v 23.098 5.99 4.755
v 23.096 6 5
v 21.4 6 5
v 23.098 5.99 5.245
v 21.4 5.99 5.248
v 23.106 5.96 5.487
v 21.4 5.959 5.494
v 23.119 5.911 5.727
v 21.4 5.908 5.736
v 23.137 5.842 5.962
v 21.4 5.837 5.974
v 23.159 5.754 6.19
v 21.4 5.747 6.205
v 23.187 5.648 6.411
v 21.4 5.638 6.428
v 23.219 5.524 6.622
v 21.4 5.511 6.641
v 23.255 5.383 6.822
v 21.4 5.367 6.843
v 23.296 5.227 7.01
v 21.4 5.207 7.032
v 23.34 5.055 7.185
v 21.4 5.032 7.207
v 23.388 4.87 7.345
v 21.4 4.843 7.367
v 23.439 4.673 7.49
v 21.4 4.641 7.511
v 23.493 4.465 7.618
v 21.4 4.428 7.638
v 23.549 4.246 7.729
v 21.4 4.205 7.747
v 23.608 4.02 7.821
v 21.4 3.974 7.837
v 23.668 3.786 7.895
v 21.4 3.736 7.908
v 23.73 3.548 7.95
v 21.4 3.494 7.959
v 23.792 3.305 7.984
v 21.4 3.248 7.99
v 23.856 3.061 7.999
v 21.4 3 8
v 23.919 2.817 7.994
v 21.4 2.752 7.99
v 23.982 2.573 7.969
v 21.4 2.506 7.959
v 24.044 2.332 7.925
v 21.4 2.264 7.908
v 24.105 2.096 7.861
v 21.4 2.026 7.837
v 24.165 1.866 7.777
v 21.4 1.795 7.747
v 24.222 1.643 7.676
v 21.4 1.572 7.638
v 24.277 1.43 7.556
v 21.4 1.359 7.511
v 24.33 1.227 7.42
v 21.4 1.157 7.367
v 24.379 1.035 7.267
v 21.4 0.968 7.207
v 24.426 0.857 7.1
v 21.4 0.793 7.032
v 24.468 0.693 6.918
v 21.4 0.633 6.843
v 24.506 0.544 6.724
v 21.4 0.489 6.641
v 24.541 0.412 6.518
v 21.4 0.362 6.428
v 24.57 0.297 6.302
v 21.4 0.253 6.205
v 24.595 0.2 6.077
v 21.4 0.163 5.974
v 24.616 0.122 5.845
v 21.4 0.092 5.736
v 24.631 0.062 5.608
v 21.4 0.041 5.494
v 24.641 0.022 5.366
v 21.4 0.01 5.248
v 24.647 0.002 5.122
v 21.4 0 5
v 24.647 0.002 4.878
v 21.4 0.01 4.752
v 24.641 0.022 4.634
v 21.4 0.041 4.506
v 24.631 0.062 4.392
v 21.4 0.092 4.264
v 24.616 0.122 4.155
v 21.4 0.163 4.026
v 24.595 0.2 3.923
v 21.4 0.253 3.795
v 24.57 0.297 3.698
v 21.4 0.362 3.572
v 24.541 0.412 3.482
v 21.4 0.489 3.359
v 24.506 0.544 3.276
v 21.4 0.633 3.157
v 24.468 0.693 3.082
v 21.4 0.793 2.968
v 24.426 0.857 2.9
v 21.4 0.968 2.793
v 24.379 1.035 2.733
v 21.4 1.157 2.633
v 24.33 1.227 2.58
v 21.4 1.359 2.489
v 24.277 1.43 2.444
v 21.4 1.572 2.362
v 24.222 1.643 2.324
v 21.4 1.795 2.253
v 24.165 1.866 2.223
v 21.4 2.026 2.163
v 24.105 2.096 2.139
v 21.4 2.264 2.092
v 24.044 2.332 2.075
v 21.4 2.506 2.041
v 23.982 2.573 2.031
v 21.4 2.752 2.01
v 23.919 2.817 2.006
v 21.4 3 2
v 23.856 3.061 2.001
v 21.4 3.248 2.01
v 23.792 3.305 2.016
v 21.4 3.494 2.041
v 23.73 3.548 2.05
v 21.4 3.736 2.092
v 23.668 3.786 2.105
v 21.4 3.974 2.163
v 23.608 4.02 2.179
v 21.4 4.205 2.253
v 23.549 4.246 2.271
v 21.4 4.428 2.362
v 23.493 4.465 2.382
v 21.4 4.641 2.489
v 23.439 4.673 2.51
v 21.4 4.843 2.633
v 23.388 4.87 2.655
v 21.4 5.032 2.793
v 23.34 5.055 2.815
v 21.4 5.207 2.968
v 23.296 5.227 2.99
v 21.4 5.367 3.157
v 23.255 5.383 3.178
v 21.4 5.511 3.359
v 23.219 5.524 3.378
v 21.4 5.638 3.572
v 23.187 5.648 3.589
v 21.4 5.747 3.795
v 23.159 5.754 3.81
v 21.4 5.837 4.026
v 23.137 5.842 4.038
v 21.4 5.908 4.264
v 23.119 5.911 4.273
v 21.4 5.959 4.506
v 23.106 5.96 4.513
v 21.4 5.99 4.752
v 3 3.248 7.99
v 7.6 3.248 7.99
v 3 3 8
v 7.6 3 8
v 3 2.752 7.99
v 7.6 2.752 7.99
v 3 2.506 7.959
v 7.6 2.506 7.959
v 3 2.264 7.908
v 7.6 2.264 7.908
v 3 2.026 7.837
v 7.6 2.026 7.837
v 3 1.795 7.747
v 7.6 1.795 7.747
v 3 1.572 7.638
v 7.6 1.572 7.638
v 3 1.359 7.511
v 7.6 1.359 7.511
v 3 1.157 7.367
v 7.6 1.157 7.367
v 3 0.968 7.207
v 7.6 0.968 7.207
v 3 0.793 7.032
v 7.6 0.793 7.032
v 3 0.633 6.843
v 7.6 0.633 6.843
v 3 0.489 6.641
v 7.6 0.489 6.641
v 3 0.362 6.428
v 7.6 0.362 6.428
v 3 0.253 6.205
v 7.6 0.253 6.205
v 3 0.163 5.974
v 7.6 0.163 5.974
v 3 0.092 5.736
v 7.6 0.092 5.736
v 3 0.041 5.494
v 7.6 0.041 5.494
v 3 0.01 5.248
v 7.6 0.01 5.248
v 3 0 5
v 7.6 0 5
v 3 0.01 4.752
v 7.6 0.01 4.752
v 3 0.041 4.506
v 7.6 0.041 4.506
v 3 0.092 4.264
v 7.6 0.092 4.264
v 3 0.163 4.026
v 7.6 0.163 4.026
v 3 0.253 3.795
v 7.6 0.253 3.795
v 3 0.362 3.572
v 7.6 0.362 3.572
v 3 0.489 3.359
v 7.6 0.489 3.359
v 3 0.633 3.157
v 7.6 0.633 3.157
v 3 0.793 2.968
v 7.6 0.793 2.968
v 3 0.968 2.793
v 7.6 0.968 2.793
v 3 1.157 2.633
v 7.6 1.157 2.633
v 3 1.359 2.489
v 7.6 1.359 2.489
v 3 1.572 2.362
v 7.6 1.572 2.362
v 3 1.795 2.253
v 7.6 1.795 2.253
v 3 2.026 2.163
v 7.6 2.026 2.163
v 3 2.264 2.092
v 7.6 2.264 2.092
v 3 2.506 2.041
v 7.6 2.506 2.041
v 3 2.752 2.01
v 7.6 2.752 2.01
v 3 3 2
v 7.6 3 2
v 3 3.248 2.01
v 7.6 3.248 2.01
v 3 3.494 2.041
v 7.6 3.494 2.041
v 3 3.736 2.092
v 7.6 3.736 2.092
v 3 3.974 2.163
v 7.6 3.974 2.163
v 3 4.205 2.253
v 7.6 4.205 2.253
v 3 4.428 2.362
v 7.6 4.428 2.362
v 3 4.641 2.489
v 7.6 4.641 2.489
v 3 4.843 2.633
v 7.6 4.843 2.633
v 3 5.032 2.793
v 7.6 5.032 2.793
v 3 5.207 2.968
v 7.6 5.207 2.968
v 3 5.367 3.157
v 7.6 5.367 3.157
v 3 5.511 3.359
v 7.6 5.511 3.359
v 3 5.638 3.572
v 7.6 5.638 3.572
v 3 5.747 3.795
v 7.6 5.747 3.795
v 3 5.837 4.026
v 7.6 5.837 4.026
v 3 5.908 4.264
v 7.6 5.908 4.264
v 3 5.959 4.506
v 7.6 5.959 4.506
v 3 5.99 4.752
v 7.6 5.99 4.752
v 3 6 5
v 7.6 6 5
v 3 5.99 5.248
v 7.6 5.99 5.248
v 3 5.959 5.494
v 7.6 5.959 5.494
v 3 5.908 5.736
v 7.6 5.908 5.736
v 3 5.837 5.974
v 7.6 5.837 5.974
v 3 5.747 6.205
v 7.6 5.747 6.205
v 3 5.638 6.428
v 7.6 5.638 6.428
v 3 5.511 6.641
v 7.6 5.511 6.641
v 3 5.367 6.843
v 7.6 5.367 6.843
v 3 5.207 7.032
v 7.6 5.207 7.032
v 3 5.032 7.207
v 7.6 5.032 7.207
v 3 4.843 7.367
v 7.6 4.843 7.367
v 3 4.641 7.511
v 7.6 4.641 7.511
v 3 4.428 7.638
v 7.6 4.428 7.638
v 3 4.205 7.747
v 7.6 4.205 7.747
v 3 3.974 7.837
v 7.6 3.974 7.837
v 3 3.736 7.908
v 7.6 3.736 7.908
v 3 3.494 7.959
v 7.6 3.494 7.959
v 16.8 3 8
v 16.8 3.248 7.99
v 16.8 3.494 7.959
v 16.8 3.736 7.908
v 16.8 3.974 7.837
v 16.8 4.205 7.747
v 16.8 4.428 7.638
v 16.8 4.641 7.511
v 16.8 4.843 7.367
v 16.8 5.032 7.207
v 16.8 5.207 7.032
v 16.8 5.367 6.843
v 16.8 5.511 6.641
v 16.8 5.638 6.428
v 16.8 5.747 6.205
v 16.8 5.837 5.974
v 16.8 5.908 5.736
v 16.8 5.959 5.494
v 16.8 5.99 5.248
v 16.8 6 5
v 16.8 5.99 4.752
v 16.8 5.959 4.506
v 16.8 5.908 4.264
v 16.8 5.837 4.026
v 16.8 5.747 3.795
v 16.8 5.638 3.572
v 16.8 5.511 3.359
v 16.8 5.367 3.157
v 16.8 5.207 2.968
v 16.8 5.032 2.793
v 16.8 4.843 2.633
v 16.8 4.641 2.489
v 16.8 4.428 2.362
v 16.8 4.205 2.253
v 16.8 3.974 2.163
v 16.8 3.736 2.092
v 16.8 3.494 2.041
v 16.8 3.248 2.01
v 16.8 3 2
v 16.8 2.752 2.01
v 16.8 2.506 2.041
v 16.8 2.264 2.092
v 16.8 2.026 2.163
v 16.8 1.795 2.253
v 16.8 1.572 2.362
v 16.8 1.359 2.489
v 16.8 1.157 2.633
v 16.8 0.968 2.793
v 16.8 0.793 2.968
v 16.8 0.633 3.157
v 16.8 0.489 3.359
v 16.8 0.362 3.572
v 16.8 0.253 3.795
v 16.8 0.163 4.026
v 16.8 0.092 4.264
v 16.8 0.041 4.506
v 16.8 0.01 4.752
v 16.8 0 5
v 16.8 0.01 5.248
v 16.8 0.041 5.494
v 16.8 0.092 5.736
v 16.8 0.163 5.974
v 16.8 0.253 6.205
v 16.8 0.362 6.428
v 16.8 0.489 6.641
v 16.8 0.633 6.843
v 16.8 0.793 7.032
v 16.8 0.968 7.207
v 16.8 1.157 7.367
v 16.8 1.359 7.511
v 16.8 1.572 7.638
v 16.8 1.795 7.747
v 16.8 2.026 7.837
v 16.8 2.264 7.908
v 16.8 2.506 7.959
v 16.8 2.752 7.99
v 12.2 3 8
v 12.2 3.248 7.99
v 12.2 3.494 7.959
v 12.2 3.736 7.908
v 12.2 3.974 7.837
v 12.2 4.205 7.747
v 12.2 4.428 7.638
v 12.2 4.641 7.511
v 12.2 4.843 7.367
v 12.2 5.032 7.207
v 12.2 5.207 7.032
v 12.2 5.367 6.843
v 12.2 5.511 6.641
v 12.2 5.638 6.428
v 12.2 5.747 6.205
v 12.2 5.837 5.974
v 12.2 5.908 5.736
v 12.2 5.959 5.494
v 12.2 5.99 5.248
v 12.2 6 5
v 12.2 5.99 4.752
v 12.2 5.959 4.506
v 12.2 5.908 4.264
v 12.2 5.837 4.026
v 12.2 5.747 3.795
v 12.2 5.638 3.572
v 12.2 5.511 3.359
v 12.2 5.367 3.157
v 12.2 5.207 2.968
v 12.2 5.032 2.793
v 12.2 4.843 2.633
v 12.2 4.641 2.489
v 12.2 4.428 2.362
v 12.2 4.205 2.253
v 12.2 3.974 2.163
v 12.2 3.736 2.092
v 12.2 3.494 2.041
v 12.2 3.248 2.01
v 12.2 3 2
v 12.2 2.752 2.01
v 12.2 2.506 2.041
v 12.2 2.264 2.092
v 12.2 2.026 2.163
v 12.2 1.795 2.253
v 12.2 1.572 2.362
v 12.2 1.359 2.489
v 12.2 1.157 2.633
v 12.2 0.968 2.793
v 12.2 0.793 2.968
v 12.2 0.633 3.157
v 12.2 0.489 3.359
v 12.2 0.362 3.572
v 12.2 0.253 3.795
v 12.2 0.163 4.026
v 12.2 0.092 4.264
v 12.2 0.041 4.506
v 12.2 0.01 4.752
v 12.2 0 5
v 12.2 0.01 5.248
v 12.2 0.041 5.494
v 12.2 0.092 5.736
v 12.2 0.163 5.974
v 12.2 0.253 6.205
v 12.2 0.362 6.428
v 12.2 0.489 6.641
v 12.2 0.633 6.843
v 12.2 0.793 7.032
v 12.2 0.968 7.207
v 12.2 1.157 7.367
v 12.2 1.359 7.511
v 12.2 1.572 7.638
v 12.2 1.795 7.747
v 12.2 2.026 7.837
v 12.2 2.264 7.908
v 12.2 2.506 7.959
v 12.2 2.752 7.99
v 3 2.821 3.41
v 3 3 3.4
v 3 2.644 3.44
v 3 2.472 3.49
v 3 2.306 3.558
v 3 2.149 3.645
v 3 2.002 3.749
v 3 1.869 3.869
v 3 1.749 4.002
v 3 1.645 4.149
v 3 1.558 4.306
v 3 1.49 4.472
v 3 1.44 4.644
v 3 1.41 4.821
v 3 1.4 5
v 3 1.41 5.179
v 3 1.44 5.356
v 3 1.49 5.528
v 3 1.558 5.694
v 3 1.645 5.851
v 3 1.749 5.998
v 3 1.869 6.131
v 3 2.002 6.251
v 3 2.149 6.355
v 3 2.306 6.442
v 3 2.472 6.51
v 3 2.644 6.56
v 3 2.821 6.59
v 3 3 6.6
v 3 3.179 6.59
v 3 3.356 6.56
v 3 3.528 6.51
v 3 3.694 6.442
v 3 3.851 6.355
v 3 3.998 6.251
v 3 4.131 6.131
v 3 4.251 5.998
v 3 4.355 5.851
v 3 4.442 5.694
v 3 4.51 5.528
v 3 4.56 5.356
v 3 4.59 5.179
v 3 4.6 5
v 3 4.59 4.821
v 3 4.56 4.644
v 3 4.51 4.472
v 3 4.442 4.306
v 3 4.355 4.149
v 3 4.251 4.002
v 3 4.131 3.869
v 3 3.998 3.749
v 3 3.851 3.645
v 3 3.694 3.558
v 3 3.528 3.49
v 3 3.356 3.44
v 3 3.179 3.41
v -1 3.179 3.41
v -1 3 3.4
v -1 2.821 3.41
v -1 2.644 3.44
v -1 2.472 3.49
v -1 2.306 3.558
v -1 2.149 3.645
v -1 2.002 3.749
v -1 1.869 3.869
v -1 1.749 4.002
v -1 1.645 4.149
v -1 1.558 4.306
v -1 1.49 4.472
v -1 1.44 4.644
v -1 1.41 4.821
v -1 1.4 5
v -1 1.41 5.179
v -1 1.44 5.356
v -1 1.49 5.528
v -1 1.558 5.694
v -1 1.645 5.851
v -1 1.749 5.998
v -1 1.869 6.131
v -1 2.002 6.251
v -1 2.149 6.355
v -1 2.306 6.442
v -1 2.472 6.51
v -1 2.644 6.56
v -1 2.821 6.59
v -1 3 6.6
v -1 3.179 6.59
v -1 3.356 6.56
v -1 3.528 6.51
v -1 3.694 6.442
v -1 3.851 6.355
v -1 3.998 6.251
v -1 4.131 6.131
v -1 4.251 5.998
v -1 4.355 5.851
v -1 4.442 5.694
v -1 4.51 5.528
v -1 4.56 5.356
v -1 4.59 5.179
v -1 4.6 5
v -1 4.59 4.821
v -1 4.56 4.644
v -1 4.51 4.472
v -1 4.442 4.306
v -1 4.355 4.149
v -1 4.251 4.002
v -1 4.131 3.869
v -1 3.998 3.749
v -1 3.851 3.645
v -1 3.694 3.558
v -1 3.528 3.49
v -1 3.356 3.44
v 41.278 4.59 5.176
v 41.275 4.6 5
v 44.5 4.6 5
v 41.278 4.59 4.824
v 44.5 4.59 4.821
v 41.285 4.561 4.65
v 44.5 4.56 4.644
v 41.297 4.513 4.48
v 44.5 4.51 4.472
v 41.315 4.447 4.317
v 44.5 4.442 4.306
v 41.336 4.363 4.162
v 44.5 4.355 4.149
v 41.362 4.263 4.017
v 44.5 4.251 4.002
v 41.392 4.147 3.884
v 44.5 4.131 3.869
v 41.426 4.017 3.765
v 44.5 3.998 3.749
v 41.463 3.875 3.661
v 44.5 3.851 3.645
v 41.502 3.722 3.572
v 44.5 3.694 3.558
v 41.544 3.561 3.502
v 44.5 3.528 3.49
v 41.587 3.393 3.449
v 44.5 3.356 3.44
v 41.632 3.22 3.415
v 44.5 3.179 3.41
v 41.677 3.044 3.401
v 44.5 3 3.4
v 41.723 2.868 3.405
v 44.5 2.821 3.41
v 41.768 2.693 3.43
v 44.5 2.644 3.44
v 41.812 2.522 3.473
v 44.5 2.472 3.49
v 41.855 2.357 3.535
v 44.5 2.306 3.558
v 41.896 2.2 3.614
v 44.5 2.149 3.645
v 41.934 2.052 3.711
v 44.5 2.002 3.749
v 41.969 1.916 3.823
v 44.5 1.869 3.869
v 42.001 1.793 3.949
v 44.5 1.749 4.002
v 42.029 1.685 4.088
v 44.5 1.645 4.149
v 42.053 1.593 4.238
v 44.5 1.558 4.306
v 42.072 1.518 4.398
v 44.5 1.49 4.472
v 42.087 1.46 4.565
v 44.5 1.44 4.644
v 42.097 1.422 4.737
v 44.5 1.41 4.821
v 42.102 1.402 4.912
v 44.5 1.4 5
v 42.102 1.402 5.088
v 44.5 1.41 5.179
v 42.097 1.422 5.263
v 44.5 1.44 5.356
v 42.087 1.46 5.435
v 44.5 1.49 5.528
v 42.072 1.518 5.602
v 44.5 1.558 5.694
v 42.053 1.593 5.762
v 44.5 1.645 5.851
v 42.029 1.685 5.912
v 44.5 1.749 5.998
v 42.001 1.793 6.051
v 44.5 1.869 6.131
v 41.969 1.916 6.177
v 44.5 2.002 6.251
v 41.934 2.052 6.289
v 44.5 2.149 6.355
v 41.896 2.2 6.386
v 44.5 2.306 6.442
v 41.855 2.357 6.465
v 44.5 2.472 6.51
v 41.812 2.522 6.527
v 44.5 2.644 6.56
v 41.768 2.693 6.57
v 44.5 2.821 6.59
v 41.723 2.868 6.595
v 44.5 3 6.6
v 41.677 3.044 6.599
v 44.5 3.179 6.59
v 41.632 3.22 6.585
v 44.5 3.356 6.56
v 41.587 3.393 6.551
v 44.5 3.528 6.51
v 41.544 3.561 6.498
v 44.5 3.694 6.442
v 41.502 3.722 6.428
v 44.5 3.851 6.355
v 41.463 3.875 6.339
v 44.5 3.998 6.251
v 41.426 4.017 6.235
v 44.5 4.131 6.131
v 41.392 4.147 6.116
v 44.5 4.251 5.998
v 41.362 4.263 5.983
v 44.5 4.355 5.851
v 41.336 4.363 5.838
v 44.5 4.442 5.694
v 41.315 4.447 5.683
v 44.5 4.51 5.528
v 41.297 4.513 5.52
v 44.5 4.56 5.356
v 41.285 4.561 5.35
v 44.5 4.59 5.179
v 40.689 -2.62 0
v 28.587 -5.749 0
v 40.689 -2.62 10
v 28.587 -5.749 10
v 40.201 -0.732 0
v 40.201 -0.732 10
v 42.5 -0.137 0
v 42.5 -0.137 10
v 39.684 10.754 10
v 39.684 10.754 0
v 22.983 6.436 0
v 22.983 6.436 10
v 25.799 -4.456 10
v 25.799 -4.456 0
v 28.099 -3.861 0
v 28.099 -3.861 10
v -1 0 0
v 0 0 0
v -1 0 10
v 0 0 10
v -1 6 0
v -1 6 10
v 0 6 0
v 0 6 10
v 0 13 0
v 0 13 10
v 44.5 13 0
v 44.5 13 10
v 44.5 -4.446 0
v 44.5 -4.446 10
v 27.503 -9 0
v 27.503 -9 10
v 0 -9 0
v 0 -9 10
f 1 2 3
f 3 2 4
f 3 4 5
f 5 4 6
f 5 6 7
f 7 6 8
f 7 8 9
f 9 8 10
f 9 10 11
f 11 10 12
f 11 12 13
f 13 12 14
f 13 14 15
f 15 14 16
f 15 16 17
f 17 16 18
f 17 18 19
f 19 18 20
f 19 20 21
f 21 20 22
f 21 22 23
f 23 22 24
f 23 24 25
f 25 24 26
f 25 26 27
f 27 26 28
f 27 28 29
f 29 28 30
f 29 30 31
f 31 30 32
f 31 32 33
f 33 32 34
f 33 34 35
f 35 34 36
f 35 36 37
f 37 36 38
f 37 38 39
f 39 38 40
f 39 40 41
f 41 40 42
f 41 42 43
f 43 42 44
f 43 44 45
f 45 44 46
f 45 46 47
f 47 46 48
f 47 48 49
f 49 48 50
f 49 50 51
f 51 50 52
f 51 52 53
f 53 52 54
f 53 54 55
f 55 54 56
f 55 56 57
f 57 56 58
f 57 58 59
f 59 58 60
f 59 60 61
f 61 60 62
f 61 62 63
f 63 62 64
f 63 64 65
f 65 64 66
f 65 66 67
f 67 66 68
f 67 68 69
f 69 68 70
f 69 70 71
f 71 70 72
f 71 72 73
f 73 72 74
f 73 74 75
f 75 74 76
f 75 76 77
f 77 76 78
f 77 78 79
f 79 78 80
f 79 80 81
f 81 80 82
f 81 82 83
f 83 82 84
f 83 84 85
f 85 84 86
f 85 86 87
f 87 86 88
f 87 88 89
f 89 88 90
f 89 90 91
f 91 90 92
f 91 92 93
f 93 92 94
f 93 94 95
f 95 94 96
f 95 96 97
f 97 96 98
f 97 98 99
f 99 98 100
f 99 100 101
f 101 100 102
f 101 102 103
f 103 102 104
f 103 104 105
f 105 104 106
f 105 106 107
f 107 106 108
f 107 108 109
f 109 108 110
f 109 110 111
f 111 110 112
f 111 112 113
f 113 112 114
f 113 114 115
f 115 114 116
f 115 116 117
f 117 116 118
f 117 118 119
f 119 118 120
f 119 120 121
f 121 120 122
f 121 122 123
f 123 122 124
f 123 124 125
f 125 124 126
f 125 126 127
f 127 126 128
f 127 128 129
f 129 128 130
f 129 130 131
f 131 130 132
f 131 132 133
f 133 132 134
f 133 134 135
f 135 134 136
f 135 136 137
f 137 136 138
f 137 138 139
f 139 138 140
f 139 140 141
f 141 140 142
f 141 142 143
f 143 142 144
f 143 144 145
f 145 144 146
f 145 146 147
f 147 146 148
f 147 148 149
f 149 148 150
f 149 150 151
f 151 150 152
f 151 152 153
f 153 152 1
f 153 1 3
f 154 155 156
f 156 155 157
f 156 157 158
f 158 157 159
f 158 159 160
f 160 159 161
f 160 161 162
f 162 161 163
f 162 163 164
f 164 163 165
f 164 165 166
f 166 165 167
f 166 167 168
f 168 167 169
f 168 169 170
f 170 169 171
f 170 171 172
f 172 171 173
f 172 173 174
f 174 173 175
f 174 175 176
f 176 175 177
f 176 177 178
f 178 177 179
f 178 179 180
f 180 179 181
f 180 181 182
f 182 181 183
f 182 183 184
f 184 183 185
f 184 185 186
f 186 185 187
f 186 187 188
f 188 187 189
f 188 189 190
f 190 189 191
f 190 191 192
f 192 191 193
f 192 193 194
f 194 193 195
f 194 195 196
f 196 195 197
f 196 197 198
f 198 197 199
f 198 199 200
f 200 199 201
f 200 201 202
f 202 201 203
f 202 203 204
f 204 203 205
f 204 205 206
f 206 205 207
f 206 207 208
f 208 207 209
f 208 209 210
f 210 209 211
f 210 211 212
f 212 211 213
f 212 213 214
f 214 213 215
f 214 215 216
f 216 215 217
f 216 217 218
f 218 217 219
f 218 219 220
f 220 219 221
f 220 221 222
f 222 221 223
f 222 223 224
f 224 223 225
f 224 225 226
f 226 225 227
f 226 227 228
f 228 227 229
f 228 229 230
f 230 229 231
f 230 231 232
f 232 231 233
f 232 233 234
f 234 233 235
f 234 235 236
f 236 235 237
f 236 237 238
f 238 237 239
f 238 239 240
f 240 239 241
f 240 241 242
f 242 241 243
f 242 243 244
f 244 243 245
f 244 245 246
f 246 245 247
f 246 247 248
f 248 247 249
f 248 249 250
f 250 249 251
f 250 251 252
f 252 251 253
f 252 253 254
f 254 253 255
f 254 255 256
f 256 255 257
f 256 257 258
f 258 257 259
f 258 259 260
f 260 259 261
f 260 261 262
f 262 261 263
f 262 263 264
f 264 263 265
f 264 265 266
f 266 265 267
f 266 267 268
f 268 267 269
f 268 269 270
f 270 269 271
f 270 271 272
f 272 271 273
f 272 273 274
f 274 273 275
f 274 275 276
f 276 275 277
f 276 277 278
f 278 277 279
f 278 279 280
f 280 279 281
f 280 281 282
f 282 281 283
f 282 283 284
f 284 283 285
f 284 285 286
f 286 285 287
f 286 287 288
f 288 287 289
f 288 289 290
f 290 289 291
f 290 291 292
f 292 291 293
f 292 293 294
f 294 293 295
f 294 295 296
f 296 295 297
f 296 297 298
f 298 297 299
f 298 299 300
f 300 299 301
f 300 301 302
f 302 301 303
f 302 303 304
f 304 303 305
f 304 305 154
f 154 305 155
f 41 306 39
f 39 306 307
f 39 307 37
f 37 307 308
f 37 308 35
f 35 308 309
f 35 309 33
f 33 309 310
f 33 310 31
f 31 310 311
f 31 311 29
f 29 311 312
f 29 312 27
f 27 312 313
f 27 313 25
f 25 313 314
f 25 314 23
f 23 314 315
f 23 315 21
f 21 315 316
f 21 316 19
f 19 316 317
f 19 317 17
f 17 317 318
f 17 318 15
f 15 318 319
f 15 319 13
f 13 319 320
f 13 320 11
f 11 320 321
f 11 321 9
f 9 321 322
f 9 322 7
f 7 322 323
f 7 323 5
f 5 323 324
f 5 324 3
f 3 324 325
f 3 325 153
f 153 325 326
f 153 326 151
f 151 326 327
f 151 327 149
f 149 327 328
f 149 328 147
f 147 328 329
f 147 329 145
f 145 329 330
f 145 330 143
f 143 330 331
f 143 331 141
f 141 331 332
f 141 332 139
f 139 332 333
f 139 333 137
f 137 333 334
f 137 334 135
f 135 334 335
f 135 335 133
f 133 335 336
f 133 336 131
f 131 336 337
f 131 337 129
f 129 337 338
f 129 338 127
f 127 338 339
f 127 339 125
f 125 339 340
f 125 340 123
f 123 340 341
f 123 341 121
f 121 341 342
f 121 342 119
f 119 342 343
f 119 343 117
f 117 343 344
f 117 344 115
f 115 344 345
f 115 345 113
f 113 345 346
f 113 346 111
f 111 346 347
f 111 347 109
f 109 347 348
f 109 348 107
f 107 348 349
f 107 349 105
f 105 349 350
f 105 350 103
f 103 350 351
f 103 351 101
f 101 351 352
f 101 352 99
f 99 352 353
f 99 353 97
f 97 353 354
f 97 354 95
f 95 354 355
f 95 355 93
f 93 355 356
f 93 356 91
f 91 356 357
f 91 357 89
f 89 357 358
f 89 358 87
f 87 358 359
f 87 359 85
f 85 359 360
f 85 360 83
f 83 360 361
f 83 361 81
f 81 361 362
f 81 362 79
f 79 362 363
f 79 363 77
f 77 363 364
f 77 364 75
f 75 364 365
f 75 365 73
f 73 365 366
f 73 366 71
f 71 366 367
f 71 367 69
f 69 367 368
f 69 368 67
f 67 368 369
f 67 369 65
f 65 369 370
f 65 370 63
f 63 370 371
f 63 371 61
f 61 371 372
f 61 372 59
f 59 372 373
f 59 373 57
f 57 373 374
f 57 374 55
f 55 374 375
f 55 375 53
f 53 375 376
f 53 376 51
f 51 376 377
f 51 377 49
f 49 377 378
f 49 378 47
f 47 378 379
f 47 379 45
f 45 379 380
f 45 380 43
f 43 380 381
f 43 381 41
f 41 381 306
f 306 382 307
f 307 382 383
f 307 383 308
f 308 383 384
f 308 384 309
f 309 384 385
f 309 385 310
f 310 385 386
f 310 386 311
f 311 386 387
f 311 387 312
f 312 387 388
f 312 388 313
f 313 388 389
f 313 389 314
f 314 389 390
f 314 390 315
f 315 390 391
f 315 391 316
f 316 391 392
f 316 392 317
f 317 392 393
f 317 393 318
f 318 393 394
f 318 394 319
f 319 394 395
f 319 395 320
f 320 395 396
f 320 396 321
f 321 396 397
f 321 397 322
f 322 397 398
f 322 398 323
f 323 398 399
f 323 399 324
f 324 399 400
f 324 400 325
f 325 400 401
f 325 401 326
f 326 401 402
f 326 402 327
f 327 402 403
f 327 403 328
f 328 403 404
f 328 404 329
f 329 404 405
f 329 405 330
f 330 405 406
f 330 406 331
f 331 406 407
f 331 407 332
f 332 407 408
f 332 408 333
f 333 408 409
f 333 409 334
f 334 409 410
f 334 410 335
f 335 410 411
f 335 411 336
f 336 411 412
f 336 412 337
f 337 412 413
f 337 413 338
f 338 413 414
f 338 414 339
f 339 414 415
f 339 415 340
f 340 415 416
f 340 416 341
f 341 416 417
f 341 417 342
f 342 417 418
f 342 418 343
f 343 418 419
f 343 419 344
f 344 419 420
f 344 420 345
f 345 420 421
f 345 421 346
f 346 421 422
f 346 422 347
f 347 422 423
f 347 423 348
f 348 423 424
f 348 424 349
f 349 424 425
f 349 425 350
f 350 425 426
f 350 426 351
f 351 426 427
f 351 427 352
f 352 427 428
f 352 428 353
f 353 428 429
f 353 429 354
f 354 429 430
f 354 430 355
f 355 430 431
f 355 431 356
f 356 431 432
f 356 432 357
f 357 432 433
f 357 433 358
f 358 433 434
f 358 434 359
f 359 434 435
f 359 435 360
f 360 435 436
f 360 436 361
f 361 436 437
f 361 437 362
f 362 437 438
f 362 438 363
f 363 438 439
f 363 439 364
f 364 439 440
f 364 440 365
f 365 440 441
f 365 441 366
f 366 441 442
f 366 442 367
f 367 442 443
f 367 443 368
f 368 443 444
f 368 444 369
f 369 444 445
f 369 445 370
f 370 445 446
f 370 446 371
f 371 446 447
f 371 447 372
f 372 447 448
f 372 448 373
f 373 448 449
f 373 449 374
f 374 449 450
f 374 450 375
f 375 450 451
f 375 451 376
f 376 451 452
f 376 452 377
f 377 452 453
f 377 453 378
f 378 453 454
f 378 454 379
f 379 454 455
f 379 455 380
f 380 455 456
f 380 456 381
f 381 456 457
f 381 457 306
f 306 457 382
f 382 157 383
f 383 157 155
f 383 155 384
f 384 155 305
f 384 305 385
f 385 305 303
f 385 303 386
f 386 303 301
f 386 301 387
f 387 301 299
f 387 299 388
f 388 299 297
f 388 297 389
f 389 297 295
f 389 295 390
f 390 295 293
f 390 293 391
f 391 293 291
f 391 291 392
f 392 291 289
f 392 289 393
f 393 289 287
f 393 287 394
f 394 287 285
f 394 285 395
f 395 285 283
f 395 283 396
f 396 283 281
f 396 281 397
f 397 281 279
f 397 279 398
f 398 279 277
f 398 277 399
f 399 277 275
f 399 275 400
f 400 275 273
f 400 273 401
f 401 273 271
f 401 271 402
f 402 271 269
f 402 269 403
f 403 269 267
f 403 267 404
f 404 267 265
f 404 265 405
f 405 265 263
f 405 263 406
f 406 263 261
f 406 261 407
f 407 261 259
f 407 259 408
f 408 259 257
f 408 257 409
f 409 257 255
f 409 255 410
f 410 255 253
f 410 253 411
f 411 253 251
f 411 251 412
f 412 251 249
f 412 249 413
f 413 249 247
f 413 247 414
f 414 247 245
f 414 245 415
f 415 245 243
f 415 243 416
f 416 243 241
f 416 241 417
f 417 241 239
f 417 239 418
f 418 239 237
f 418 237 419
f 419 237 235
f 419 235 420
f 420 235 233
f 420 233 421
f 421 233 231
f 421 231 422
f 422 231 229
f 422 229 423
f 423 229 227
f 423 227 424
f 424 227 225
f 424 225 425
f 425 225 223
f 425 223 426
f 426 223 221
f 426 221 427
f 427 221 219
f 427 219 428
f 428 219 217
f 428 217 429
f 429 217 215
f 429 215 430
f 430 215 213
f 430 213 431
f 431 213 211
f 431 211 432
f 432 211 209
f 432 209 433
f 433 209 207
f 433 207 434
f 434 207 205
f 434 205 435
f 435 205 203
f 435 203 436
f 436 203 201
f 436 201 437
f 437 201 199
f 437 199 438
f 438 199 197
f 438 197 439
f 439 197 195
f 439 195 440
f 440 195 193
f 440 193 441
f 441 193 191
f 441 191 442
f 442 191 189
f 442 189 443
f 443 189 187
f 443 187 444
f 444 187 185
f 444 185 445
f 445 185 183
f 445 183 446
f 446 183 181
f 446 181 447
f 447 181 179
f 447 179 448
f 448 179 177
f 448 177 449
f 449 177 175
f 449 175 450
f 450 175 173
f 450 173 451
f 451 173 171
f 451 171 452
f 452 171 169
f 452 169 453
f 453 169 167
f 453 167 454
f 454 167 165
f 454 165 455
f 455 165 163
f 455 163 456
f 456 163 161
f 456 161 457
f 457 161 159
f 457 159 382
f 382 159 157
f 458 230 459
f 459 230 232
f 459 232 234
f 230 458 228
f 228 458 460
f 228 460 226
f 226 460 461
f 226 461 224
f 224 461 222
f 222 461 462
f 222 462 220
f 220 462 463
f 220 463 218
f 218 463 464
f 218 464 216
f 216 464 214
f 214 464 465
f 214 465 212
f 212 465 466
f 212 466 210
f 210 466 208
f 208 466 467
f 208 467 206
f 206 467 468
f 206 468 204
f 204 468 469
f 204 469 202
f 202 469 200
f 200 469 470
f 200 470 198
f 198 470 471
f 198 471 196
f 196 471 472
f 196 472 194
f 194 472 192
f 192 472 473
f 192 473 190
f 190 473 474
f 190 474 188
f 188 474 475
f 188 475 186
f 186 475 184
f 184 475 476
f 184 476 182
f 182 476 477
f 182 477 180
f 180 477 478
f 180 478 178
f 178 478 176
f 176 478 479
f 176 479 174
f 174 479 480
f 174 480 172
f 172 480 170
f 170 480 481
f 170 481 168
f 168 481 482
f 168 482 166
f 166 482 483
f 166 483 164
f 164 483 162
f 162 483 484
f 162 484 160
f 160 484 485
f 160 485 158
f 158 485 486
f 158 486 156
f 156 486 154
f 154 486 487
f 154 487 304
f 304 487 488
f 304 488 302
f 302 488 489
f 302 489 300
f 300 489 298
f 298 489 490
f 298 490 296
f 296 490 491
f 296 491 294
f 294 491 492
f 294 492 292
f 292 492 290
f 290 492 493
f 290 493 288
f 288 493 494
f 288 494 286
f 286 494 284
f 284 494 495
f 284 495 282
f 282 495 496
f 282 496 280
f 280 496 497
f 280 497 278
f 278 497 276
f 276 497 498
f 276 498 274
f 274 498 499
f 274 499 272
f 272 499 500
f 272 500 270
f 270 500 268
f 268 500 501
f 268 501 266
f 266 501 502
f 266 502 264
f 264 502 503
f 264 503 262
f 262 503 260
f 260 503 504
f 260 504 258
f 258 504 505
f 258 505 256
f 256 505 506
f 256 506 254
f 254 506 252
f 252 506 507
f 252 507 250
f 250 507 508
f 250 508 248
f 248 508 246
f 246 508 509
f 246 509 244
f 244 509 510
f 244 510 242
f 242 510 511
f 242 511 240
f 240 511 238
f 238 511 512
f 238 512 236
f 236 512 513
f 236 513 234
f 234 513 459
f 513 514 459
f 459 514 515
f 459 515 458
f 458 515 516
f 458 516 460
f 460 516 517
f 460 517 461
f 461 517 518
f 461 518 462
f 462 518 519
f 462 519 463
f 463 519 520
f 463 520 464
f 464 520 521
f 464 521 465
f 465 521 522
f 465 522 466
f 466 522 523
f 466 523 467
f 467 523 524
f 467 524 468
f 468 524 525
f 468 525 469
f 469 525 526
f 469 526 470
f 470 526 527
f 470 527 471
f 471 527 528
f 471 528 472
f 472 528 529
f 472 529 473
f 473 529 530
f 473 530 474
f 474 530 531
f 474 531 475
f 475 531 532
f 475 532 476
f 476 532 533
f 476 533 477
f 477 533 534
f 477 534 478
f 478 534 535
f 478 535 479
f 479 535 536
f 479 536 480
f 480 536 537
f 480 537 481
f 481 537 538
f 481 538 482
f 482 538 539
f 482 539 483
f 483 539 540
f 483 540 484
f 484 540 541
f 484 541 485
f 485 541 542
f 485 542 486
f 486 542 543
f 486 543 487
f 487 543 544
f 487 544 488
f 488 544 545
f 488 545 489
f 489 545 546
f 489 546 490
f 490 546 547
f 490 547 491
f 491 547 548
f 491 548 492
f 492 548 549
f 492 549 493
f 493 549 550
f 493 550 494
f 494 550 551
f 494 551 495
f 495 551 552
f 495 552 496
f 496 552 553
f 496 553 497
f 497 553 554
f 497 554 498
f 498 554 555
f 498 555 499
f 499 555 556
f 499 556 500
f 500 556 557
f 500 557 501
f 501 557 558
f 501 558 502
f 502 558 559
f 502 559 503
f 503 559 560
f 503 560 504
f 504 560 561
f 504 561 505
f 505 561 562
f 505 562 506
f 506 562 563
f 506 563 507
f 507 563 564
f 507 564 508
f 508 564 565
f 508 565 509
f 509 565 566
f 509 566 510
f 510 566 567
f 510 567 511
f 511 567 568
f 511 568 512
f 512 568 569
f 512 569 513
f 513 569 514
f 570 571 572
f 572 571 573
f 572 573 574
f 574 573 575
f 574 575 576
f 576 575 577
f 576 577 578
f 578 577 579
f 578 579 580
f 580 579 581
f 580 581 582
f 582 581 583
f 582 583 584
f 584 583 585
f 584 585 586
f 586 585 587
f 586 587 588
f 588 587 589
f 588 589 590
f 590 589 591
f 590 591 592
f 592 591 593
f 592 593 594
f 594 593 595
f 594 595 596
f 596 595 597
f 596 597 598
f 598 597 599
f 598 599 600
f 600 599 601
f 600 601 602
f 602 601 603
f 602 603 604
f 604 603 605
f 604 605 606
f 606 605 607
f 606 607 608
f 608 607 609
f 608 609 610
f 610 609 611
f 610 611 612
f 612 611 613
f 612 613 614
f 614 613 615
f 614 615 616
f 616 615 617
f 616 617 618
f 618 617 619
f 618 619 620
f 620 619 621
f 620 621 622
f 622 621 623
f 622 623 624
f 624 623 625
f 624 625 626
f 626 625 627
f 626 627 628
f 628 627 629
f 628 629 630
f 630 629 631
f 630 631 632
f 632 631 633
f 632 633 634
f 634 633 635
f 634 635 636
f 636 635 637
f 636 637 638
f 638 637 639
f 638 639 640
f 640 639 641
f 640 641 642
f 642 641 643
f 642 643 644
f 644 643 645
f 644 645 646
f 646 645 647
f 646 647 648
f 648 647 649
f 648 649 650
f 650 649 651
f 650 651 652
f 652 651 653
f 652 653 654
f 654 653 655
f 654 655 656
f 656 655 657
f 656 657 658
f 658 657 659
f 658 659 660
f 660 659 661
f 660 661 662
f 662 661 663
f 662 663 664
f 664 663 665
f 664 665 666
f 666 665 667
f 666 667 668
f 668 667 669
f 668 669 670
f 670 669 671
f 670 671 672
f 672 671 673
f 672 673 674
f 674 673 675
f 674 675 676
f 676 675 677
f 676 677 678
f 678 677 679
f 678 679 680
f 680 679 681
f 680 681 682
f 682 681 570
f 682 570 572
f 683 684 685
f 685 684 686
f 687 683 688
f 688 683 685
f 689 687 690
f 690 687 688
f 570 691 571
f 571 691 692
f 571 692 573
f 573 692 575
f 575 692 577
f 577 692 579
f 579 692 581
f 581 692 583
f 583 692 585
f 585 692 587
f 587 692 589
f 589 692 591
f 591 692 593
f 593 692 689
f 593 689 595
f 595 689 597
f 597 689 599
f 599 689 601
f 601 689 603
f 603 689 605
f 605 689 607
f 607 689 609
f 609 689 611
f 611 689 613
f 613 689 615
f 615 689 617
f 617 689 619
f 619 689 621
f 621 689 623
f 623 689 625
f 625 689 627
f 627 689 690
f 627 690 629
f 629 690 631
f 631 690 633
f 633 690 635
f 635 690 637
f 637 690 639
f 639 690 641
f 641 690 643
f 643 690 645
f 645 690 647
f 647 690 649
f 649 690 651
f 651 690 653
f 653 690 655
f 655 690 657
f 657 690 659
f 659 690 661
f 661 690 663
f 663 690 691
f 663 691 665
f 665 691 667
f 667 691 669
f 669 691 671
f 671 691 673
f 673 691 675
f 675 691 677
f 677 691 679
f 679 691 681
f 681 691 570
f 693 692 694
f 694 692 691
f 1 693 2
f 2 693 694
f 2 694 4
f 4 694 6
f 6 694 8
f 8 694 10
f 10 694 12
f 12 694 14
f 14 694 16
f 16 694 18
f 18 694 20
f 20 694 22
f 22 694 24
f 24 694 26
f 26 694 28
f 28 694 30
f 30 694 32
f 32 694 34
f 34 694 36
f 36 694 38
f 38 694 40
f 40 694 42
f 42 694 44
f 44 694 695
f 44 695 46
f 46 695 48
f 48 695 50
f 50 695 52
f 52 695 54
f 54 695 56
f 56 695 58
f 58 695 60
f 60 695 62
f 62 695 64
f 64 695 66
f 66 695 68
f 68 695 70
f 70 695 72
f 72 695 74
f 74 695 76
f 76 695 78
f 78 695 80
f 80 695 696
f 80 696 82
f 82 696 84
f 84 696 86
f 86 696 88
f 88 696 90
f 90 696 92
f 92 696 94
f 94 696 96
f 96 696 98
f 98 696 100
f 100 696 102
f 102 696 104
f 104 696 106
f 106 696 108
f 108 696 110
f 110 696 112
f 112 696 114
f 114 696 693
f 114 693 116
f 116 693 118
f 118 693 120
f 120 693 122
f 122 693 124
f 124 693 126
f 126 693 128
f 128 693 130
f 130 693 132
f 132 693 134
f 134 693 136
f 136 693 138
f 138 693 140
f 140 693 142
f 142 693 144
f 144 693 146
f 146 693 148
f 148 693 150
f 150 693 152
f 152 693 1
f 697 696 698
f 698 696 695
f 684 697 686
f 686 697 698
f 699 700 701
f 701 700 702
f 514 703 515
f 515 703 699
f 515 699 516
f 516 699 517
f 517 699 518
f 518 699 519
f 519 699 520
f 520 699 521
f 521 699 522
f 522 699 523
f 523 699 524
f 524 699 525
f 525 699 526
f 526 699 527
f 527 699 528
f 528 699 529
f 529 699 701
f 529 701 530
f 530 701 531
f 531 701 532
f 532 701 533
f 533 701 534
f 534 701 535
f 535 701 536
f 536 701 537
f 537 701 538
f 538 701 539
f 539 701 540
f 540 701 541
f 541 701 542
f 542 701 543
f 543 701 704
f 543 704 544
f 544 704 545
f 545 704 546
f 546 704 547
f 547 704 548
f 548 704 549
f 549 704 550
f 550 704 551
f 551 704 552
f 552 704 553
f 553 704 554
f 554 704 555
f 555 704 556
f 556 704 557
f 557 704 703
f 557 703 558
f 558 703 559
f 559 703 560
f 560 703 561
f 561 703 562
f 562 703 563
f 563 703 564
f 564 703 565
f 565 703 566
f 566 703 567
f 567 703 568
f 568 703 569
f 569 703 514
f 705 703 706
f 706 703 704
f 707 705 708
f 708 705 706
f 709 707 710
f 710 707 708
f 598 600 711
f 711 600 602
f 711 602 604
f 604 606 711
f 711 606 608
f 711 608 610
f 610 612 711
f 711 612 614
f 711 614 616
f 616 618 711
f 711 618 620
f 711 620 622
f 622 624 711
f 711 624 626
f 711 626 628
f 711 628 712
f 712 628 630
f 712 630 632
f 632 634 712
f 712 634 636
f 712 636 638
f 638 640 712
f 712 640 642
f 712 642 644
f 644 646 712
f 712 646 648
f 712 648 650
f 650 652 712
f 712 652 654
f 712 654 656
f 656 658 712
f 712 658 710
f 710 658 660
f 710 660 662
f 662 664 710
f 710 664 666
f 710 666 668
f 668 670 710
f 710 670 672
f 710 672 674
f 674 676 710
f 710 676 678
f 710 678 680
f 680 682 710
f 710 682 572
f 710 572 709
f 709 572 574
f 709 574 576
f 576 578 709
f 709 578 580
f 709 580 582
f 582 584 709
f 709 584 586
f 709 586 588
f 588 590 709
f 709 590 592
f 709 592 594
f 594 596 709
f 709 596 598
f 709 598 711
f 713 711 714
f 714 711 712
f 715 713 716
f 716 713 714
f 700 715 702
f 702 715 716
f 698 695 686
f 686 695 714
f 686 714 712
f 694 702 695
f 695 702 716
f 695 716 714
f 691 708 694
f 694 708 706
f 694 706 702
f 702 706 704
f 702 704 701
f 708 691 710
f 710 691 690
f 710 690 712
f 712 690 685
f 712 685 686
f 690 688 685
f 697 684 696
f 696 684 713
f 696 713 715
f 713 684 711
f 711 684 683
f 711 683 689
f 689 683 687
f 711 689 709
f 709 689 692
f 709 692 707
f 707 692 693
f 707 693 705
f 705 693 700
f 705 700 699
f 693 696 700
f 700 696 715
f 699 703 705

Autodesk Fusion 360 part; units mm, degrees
sketch "Sketch1" plane through (0, 0, 0) normal (0, 0, 1) x (1, 0, 0)
  line L0 (0, 13) -> (44.5, 13)
  line L1 (0, 0) -> (-1, 0)
  line L2 (-1, 0) -> (-1, 6)
  line L3 (-1, 6) -> (0, 6)
  line L4 (0, -9) -> (27.5027, -9)
  line L5 (44.5, 13) -> (44.5, -4.4456)
  line L6 (9.2672, -6.9165) -> (19.8794, -6.9165) construction
  line L7 (25.7993, -4.4556) -> (22.983, 6.4362)
  line L8 (22.983, 6.4362) -> (39.6837, 10.7545)
  line L9 (39.6837, 10.7545) -> (42.5, -0.1373)
  line L10 (0, 13) -> (0, 6)
  line L11 (0, 0) -> (0, -9)
  line L12 (27.5027, -9) -> (28.2069, -8.8113)
  line L13 (27.5027, -9) -> (27.6263, -9) construction
  line L14 (28.5868, -5.749) -> (28.0986, -3.8611)
  line L15 (40.6888, -2.6198) -> (40.2006, -0.7319)
  line L16 (28.0986, -3.8611) -> (25.7993, -4.4556)
  line L17 (40.2006, -0.7319) -> (42.5, -0.1373)
  line L18 (28.5868, -5.749) -> (40.6888, -2.6198)
  line L19 (28.2069, -8.8113) -> (44.5, -4.4456)
  point P0 (28.5868, -5.749)
  dimension "d1" = 44.5
  dimension "d3" = 1
  dimension "d4" = 6
  dimension "d6" = 9
  dimension "d7" = 7
  dimension "d15" = 17.25
  dimension "d25" = 15
  dimension "d26" = 12.5
  dimension "d30" = 2
  dimension "d31" = 105
  dimension "d33" = 2.75
  dimension "d34" = 13.2
  dimension "d35" = 16.9973
  dimension "d38" = 11.25
extrude "Extrude1" add sketch "Sketch1" along normal blind 10
sketch "Sketch2" plane through (-1, 0, 0) normal (-1, 0, 0) x (0, 0, 1)
  line L0 (0, 6) -> (0, 0)
  line L1 (0, 0) -> (10, 0)
  line L2 (10, 0) -> (10, 6)
  line L3 (10, 6) -> (0, 6)
  circle A0 centre (5, 3) radius 1.6
  circle A1 centre (5, 3) radius 3
  dimension "d18" = 3.2
  dimension "d19" = 6
extrude "Extrude2" cut sketch "Sketch2" against normal up to surface (45.5 mm away) contours A0
ref_plane "WorkPlane1" through (26, 3, 5) normal (-1, 0, 0) x (0, 0, 1)
sketch "Sketch3" plane through (26, 3, 2.5) normal (-1, 0, 0) x (0, 0, -1)
  circle A0 centre (-2.5, 0) radius 3
  point P0 (-2.5, 0)
extrude "Extrude3" cut sketch "Sketch3" along normal blind 23
equation "d1 = 27.5 mm + 17 mm"
equation "d23 = 27 mm - 4 mm"
